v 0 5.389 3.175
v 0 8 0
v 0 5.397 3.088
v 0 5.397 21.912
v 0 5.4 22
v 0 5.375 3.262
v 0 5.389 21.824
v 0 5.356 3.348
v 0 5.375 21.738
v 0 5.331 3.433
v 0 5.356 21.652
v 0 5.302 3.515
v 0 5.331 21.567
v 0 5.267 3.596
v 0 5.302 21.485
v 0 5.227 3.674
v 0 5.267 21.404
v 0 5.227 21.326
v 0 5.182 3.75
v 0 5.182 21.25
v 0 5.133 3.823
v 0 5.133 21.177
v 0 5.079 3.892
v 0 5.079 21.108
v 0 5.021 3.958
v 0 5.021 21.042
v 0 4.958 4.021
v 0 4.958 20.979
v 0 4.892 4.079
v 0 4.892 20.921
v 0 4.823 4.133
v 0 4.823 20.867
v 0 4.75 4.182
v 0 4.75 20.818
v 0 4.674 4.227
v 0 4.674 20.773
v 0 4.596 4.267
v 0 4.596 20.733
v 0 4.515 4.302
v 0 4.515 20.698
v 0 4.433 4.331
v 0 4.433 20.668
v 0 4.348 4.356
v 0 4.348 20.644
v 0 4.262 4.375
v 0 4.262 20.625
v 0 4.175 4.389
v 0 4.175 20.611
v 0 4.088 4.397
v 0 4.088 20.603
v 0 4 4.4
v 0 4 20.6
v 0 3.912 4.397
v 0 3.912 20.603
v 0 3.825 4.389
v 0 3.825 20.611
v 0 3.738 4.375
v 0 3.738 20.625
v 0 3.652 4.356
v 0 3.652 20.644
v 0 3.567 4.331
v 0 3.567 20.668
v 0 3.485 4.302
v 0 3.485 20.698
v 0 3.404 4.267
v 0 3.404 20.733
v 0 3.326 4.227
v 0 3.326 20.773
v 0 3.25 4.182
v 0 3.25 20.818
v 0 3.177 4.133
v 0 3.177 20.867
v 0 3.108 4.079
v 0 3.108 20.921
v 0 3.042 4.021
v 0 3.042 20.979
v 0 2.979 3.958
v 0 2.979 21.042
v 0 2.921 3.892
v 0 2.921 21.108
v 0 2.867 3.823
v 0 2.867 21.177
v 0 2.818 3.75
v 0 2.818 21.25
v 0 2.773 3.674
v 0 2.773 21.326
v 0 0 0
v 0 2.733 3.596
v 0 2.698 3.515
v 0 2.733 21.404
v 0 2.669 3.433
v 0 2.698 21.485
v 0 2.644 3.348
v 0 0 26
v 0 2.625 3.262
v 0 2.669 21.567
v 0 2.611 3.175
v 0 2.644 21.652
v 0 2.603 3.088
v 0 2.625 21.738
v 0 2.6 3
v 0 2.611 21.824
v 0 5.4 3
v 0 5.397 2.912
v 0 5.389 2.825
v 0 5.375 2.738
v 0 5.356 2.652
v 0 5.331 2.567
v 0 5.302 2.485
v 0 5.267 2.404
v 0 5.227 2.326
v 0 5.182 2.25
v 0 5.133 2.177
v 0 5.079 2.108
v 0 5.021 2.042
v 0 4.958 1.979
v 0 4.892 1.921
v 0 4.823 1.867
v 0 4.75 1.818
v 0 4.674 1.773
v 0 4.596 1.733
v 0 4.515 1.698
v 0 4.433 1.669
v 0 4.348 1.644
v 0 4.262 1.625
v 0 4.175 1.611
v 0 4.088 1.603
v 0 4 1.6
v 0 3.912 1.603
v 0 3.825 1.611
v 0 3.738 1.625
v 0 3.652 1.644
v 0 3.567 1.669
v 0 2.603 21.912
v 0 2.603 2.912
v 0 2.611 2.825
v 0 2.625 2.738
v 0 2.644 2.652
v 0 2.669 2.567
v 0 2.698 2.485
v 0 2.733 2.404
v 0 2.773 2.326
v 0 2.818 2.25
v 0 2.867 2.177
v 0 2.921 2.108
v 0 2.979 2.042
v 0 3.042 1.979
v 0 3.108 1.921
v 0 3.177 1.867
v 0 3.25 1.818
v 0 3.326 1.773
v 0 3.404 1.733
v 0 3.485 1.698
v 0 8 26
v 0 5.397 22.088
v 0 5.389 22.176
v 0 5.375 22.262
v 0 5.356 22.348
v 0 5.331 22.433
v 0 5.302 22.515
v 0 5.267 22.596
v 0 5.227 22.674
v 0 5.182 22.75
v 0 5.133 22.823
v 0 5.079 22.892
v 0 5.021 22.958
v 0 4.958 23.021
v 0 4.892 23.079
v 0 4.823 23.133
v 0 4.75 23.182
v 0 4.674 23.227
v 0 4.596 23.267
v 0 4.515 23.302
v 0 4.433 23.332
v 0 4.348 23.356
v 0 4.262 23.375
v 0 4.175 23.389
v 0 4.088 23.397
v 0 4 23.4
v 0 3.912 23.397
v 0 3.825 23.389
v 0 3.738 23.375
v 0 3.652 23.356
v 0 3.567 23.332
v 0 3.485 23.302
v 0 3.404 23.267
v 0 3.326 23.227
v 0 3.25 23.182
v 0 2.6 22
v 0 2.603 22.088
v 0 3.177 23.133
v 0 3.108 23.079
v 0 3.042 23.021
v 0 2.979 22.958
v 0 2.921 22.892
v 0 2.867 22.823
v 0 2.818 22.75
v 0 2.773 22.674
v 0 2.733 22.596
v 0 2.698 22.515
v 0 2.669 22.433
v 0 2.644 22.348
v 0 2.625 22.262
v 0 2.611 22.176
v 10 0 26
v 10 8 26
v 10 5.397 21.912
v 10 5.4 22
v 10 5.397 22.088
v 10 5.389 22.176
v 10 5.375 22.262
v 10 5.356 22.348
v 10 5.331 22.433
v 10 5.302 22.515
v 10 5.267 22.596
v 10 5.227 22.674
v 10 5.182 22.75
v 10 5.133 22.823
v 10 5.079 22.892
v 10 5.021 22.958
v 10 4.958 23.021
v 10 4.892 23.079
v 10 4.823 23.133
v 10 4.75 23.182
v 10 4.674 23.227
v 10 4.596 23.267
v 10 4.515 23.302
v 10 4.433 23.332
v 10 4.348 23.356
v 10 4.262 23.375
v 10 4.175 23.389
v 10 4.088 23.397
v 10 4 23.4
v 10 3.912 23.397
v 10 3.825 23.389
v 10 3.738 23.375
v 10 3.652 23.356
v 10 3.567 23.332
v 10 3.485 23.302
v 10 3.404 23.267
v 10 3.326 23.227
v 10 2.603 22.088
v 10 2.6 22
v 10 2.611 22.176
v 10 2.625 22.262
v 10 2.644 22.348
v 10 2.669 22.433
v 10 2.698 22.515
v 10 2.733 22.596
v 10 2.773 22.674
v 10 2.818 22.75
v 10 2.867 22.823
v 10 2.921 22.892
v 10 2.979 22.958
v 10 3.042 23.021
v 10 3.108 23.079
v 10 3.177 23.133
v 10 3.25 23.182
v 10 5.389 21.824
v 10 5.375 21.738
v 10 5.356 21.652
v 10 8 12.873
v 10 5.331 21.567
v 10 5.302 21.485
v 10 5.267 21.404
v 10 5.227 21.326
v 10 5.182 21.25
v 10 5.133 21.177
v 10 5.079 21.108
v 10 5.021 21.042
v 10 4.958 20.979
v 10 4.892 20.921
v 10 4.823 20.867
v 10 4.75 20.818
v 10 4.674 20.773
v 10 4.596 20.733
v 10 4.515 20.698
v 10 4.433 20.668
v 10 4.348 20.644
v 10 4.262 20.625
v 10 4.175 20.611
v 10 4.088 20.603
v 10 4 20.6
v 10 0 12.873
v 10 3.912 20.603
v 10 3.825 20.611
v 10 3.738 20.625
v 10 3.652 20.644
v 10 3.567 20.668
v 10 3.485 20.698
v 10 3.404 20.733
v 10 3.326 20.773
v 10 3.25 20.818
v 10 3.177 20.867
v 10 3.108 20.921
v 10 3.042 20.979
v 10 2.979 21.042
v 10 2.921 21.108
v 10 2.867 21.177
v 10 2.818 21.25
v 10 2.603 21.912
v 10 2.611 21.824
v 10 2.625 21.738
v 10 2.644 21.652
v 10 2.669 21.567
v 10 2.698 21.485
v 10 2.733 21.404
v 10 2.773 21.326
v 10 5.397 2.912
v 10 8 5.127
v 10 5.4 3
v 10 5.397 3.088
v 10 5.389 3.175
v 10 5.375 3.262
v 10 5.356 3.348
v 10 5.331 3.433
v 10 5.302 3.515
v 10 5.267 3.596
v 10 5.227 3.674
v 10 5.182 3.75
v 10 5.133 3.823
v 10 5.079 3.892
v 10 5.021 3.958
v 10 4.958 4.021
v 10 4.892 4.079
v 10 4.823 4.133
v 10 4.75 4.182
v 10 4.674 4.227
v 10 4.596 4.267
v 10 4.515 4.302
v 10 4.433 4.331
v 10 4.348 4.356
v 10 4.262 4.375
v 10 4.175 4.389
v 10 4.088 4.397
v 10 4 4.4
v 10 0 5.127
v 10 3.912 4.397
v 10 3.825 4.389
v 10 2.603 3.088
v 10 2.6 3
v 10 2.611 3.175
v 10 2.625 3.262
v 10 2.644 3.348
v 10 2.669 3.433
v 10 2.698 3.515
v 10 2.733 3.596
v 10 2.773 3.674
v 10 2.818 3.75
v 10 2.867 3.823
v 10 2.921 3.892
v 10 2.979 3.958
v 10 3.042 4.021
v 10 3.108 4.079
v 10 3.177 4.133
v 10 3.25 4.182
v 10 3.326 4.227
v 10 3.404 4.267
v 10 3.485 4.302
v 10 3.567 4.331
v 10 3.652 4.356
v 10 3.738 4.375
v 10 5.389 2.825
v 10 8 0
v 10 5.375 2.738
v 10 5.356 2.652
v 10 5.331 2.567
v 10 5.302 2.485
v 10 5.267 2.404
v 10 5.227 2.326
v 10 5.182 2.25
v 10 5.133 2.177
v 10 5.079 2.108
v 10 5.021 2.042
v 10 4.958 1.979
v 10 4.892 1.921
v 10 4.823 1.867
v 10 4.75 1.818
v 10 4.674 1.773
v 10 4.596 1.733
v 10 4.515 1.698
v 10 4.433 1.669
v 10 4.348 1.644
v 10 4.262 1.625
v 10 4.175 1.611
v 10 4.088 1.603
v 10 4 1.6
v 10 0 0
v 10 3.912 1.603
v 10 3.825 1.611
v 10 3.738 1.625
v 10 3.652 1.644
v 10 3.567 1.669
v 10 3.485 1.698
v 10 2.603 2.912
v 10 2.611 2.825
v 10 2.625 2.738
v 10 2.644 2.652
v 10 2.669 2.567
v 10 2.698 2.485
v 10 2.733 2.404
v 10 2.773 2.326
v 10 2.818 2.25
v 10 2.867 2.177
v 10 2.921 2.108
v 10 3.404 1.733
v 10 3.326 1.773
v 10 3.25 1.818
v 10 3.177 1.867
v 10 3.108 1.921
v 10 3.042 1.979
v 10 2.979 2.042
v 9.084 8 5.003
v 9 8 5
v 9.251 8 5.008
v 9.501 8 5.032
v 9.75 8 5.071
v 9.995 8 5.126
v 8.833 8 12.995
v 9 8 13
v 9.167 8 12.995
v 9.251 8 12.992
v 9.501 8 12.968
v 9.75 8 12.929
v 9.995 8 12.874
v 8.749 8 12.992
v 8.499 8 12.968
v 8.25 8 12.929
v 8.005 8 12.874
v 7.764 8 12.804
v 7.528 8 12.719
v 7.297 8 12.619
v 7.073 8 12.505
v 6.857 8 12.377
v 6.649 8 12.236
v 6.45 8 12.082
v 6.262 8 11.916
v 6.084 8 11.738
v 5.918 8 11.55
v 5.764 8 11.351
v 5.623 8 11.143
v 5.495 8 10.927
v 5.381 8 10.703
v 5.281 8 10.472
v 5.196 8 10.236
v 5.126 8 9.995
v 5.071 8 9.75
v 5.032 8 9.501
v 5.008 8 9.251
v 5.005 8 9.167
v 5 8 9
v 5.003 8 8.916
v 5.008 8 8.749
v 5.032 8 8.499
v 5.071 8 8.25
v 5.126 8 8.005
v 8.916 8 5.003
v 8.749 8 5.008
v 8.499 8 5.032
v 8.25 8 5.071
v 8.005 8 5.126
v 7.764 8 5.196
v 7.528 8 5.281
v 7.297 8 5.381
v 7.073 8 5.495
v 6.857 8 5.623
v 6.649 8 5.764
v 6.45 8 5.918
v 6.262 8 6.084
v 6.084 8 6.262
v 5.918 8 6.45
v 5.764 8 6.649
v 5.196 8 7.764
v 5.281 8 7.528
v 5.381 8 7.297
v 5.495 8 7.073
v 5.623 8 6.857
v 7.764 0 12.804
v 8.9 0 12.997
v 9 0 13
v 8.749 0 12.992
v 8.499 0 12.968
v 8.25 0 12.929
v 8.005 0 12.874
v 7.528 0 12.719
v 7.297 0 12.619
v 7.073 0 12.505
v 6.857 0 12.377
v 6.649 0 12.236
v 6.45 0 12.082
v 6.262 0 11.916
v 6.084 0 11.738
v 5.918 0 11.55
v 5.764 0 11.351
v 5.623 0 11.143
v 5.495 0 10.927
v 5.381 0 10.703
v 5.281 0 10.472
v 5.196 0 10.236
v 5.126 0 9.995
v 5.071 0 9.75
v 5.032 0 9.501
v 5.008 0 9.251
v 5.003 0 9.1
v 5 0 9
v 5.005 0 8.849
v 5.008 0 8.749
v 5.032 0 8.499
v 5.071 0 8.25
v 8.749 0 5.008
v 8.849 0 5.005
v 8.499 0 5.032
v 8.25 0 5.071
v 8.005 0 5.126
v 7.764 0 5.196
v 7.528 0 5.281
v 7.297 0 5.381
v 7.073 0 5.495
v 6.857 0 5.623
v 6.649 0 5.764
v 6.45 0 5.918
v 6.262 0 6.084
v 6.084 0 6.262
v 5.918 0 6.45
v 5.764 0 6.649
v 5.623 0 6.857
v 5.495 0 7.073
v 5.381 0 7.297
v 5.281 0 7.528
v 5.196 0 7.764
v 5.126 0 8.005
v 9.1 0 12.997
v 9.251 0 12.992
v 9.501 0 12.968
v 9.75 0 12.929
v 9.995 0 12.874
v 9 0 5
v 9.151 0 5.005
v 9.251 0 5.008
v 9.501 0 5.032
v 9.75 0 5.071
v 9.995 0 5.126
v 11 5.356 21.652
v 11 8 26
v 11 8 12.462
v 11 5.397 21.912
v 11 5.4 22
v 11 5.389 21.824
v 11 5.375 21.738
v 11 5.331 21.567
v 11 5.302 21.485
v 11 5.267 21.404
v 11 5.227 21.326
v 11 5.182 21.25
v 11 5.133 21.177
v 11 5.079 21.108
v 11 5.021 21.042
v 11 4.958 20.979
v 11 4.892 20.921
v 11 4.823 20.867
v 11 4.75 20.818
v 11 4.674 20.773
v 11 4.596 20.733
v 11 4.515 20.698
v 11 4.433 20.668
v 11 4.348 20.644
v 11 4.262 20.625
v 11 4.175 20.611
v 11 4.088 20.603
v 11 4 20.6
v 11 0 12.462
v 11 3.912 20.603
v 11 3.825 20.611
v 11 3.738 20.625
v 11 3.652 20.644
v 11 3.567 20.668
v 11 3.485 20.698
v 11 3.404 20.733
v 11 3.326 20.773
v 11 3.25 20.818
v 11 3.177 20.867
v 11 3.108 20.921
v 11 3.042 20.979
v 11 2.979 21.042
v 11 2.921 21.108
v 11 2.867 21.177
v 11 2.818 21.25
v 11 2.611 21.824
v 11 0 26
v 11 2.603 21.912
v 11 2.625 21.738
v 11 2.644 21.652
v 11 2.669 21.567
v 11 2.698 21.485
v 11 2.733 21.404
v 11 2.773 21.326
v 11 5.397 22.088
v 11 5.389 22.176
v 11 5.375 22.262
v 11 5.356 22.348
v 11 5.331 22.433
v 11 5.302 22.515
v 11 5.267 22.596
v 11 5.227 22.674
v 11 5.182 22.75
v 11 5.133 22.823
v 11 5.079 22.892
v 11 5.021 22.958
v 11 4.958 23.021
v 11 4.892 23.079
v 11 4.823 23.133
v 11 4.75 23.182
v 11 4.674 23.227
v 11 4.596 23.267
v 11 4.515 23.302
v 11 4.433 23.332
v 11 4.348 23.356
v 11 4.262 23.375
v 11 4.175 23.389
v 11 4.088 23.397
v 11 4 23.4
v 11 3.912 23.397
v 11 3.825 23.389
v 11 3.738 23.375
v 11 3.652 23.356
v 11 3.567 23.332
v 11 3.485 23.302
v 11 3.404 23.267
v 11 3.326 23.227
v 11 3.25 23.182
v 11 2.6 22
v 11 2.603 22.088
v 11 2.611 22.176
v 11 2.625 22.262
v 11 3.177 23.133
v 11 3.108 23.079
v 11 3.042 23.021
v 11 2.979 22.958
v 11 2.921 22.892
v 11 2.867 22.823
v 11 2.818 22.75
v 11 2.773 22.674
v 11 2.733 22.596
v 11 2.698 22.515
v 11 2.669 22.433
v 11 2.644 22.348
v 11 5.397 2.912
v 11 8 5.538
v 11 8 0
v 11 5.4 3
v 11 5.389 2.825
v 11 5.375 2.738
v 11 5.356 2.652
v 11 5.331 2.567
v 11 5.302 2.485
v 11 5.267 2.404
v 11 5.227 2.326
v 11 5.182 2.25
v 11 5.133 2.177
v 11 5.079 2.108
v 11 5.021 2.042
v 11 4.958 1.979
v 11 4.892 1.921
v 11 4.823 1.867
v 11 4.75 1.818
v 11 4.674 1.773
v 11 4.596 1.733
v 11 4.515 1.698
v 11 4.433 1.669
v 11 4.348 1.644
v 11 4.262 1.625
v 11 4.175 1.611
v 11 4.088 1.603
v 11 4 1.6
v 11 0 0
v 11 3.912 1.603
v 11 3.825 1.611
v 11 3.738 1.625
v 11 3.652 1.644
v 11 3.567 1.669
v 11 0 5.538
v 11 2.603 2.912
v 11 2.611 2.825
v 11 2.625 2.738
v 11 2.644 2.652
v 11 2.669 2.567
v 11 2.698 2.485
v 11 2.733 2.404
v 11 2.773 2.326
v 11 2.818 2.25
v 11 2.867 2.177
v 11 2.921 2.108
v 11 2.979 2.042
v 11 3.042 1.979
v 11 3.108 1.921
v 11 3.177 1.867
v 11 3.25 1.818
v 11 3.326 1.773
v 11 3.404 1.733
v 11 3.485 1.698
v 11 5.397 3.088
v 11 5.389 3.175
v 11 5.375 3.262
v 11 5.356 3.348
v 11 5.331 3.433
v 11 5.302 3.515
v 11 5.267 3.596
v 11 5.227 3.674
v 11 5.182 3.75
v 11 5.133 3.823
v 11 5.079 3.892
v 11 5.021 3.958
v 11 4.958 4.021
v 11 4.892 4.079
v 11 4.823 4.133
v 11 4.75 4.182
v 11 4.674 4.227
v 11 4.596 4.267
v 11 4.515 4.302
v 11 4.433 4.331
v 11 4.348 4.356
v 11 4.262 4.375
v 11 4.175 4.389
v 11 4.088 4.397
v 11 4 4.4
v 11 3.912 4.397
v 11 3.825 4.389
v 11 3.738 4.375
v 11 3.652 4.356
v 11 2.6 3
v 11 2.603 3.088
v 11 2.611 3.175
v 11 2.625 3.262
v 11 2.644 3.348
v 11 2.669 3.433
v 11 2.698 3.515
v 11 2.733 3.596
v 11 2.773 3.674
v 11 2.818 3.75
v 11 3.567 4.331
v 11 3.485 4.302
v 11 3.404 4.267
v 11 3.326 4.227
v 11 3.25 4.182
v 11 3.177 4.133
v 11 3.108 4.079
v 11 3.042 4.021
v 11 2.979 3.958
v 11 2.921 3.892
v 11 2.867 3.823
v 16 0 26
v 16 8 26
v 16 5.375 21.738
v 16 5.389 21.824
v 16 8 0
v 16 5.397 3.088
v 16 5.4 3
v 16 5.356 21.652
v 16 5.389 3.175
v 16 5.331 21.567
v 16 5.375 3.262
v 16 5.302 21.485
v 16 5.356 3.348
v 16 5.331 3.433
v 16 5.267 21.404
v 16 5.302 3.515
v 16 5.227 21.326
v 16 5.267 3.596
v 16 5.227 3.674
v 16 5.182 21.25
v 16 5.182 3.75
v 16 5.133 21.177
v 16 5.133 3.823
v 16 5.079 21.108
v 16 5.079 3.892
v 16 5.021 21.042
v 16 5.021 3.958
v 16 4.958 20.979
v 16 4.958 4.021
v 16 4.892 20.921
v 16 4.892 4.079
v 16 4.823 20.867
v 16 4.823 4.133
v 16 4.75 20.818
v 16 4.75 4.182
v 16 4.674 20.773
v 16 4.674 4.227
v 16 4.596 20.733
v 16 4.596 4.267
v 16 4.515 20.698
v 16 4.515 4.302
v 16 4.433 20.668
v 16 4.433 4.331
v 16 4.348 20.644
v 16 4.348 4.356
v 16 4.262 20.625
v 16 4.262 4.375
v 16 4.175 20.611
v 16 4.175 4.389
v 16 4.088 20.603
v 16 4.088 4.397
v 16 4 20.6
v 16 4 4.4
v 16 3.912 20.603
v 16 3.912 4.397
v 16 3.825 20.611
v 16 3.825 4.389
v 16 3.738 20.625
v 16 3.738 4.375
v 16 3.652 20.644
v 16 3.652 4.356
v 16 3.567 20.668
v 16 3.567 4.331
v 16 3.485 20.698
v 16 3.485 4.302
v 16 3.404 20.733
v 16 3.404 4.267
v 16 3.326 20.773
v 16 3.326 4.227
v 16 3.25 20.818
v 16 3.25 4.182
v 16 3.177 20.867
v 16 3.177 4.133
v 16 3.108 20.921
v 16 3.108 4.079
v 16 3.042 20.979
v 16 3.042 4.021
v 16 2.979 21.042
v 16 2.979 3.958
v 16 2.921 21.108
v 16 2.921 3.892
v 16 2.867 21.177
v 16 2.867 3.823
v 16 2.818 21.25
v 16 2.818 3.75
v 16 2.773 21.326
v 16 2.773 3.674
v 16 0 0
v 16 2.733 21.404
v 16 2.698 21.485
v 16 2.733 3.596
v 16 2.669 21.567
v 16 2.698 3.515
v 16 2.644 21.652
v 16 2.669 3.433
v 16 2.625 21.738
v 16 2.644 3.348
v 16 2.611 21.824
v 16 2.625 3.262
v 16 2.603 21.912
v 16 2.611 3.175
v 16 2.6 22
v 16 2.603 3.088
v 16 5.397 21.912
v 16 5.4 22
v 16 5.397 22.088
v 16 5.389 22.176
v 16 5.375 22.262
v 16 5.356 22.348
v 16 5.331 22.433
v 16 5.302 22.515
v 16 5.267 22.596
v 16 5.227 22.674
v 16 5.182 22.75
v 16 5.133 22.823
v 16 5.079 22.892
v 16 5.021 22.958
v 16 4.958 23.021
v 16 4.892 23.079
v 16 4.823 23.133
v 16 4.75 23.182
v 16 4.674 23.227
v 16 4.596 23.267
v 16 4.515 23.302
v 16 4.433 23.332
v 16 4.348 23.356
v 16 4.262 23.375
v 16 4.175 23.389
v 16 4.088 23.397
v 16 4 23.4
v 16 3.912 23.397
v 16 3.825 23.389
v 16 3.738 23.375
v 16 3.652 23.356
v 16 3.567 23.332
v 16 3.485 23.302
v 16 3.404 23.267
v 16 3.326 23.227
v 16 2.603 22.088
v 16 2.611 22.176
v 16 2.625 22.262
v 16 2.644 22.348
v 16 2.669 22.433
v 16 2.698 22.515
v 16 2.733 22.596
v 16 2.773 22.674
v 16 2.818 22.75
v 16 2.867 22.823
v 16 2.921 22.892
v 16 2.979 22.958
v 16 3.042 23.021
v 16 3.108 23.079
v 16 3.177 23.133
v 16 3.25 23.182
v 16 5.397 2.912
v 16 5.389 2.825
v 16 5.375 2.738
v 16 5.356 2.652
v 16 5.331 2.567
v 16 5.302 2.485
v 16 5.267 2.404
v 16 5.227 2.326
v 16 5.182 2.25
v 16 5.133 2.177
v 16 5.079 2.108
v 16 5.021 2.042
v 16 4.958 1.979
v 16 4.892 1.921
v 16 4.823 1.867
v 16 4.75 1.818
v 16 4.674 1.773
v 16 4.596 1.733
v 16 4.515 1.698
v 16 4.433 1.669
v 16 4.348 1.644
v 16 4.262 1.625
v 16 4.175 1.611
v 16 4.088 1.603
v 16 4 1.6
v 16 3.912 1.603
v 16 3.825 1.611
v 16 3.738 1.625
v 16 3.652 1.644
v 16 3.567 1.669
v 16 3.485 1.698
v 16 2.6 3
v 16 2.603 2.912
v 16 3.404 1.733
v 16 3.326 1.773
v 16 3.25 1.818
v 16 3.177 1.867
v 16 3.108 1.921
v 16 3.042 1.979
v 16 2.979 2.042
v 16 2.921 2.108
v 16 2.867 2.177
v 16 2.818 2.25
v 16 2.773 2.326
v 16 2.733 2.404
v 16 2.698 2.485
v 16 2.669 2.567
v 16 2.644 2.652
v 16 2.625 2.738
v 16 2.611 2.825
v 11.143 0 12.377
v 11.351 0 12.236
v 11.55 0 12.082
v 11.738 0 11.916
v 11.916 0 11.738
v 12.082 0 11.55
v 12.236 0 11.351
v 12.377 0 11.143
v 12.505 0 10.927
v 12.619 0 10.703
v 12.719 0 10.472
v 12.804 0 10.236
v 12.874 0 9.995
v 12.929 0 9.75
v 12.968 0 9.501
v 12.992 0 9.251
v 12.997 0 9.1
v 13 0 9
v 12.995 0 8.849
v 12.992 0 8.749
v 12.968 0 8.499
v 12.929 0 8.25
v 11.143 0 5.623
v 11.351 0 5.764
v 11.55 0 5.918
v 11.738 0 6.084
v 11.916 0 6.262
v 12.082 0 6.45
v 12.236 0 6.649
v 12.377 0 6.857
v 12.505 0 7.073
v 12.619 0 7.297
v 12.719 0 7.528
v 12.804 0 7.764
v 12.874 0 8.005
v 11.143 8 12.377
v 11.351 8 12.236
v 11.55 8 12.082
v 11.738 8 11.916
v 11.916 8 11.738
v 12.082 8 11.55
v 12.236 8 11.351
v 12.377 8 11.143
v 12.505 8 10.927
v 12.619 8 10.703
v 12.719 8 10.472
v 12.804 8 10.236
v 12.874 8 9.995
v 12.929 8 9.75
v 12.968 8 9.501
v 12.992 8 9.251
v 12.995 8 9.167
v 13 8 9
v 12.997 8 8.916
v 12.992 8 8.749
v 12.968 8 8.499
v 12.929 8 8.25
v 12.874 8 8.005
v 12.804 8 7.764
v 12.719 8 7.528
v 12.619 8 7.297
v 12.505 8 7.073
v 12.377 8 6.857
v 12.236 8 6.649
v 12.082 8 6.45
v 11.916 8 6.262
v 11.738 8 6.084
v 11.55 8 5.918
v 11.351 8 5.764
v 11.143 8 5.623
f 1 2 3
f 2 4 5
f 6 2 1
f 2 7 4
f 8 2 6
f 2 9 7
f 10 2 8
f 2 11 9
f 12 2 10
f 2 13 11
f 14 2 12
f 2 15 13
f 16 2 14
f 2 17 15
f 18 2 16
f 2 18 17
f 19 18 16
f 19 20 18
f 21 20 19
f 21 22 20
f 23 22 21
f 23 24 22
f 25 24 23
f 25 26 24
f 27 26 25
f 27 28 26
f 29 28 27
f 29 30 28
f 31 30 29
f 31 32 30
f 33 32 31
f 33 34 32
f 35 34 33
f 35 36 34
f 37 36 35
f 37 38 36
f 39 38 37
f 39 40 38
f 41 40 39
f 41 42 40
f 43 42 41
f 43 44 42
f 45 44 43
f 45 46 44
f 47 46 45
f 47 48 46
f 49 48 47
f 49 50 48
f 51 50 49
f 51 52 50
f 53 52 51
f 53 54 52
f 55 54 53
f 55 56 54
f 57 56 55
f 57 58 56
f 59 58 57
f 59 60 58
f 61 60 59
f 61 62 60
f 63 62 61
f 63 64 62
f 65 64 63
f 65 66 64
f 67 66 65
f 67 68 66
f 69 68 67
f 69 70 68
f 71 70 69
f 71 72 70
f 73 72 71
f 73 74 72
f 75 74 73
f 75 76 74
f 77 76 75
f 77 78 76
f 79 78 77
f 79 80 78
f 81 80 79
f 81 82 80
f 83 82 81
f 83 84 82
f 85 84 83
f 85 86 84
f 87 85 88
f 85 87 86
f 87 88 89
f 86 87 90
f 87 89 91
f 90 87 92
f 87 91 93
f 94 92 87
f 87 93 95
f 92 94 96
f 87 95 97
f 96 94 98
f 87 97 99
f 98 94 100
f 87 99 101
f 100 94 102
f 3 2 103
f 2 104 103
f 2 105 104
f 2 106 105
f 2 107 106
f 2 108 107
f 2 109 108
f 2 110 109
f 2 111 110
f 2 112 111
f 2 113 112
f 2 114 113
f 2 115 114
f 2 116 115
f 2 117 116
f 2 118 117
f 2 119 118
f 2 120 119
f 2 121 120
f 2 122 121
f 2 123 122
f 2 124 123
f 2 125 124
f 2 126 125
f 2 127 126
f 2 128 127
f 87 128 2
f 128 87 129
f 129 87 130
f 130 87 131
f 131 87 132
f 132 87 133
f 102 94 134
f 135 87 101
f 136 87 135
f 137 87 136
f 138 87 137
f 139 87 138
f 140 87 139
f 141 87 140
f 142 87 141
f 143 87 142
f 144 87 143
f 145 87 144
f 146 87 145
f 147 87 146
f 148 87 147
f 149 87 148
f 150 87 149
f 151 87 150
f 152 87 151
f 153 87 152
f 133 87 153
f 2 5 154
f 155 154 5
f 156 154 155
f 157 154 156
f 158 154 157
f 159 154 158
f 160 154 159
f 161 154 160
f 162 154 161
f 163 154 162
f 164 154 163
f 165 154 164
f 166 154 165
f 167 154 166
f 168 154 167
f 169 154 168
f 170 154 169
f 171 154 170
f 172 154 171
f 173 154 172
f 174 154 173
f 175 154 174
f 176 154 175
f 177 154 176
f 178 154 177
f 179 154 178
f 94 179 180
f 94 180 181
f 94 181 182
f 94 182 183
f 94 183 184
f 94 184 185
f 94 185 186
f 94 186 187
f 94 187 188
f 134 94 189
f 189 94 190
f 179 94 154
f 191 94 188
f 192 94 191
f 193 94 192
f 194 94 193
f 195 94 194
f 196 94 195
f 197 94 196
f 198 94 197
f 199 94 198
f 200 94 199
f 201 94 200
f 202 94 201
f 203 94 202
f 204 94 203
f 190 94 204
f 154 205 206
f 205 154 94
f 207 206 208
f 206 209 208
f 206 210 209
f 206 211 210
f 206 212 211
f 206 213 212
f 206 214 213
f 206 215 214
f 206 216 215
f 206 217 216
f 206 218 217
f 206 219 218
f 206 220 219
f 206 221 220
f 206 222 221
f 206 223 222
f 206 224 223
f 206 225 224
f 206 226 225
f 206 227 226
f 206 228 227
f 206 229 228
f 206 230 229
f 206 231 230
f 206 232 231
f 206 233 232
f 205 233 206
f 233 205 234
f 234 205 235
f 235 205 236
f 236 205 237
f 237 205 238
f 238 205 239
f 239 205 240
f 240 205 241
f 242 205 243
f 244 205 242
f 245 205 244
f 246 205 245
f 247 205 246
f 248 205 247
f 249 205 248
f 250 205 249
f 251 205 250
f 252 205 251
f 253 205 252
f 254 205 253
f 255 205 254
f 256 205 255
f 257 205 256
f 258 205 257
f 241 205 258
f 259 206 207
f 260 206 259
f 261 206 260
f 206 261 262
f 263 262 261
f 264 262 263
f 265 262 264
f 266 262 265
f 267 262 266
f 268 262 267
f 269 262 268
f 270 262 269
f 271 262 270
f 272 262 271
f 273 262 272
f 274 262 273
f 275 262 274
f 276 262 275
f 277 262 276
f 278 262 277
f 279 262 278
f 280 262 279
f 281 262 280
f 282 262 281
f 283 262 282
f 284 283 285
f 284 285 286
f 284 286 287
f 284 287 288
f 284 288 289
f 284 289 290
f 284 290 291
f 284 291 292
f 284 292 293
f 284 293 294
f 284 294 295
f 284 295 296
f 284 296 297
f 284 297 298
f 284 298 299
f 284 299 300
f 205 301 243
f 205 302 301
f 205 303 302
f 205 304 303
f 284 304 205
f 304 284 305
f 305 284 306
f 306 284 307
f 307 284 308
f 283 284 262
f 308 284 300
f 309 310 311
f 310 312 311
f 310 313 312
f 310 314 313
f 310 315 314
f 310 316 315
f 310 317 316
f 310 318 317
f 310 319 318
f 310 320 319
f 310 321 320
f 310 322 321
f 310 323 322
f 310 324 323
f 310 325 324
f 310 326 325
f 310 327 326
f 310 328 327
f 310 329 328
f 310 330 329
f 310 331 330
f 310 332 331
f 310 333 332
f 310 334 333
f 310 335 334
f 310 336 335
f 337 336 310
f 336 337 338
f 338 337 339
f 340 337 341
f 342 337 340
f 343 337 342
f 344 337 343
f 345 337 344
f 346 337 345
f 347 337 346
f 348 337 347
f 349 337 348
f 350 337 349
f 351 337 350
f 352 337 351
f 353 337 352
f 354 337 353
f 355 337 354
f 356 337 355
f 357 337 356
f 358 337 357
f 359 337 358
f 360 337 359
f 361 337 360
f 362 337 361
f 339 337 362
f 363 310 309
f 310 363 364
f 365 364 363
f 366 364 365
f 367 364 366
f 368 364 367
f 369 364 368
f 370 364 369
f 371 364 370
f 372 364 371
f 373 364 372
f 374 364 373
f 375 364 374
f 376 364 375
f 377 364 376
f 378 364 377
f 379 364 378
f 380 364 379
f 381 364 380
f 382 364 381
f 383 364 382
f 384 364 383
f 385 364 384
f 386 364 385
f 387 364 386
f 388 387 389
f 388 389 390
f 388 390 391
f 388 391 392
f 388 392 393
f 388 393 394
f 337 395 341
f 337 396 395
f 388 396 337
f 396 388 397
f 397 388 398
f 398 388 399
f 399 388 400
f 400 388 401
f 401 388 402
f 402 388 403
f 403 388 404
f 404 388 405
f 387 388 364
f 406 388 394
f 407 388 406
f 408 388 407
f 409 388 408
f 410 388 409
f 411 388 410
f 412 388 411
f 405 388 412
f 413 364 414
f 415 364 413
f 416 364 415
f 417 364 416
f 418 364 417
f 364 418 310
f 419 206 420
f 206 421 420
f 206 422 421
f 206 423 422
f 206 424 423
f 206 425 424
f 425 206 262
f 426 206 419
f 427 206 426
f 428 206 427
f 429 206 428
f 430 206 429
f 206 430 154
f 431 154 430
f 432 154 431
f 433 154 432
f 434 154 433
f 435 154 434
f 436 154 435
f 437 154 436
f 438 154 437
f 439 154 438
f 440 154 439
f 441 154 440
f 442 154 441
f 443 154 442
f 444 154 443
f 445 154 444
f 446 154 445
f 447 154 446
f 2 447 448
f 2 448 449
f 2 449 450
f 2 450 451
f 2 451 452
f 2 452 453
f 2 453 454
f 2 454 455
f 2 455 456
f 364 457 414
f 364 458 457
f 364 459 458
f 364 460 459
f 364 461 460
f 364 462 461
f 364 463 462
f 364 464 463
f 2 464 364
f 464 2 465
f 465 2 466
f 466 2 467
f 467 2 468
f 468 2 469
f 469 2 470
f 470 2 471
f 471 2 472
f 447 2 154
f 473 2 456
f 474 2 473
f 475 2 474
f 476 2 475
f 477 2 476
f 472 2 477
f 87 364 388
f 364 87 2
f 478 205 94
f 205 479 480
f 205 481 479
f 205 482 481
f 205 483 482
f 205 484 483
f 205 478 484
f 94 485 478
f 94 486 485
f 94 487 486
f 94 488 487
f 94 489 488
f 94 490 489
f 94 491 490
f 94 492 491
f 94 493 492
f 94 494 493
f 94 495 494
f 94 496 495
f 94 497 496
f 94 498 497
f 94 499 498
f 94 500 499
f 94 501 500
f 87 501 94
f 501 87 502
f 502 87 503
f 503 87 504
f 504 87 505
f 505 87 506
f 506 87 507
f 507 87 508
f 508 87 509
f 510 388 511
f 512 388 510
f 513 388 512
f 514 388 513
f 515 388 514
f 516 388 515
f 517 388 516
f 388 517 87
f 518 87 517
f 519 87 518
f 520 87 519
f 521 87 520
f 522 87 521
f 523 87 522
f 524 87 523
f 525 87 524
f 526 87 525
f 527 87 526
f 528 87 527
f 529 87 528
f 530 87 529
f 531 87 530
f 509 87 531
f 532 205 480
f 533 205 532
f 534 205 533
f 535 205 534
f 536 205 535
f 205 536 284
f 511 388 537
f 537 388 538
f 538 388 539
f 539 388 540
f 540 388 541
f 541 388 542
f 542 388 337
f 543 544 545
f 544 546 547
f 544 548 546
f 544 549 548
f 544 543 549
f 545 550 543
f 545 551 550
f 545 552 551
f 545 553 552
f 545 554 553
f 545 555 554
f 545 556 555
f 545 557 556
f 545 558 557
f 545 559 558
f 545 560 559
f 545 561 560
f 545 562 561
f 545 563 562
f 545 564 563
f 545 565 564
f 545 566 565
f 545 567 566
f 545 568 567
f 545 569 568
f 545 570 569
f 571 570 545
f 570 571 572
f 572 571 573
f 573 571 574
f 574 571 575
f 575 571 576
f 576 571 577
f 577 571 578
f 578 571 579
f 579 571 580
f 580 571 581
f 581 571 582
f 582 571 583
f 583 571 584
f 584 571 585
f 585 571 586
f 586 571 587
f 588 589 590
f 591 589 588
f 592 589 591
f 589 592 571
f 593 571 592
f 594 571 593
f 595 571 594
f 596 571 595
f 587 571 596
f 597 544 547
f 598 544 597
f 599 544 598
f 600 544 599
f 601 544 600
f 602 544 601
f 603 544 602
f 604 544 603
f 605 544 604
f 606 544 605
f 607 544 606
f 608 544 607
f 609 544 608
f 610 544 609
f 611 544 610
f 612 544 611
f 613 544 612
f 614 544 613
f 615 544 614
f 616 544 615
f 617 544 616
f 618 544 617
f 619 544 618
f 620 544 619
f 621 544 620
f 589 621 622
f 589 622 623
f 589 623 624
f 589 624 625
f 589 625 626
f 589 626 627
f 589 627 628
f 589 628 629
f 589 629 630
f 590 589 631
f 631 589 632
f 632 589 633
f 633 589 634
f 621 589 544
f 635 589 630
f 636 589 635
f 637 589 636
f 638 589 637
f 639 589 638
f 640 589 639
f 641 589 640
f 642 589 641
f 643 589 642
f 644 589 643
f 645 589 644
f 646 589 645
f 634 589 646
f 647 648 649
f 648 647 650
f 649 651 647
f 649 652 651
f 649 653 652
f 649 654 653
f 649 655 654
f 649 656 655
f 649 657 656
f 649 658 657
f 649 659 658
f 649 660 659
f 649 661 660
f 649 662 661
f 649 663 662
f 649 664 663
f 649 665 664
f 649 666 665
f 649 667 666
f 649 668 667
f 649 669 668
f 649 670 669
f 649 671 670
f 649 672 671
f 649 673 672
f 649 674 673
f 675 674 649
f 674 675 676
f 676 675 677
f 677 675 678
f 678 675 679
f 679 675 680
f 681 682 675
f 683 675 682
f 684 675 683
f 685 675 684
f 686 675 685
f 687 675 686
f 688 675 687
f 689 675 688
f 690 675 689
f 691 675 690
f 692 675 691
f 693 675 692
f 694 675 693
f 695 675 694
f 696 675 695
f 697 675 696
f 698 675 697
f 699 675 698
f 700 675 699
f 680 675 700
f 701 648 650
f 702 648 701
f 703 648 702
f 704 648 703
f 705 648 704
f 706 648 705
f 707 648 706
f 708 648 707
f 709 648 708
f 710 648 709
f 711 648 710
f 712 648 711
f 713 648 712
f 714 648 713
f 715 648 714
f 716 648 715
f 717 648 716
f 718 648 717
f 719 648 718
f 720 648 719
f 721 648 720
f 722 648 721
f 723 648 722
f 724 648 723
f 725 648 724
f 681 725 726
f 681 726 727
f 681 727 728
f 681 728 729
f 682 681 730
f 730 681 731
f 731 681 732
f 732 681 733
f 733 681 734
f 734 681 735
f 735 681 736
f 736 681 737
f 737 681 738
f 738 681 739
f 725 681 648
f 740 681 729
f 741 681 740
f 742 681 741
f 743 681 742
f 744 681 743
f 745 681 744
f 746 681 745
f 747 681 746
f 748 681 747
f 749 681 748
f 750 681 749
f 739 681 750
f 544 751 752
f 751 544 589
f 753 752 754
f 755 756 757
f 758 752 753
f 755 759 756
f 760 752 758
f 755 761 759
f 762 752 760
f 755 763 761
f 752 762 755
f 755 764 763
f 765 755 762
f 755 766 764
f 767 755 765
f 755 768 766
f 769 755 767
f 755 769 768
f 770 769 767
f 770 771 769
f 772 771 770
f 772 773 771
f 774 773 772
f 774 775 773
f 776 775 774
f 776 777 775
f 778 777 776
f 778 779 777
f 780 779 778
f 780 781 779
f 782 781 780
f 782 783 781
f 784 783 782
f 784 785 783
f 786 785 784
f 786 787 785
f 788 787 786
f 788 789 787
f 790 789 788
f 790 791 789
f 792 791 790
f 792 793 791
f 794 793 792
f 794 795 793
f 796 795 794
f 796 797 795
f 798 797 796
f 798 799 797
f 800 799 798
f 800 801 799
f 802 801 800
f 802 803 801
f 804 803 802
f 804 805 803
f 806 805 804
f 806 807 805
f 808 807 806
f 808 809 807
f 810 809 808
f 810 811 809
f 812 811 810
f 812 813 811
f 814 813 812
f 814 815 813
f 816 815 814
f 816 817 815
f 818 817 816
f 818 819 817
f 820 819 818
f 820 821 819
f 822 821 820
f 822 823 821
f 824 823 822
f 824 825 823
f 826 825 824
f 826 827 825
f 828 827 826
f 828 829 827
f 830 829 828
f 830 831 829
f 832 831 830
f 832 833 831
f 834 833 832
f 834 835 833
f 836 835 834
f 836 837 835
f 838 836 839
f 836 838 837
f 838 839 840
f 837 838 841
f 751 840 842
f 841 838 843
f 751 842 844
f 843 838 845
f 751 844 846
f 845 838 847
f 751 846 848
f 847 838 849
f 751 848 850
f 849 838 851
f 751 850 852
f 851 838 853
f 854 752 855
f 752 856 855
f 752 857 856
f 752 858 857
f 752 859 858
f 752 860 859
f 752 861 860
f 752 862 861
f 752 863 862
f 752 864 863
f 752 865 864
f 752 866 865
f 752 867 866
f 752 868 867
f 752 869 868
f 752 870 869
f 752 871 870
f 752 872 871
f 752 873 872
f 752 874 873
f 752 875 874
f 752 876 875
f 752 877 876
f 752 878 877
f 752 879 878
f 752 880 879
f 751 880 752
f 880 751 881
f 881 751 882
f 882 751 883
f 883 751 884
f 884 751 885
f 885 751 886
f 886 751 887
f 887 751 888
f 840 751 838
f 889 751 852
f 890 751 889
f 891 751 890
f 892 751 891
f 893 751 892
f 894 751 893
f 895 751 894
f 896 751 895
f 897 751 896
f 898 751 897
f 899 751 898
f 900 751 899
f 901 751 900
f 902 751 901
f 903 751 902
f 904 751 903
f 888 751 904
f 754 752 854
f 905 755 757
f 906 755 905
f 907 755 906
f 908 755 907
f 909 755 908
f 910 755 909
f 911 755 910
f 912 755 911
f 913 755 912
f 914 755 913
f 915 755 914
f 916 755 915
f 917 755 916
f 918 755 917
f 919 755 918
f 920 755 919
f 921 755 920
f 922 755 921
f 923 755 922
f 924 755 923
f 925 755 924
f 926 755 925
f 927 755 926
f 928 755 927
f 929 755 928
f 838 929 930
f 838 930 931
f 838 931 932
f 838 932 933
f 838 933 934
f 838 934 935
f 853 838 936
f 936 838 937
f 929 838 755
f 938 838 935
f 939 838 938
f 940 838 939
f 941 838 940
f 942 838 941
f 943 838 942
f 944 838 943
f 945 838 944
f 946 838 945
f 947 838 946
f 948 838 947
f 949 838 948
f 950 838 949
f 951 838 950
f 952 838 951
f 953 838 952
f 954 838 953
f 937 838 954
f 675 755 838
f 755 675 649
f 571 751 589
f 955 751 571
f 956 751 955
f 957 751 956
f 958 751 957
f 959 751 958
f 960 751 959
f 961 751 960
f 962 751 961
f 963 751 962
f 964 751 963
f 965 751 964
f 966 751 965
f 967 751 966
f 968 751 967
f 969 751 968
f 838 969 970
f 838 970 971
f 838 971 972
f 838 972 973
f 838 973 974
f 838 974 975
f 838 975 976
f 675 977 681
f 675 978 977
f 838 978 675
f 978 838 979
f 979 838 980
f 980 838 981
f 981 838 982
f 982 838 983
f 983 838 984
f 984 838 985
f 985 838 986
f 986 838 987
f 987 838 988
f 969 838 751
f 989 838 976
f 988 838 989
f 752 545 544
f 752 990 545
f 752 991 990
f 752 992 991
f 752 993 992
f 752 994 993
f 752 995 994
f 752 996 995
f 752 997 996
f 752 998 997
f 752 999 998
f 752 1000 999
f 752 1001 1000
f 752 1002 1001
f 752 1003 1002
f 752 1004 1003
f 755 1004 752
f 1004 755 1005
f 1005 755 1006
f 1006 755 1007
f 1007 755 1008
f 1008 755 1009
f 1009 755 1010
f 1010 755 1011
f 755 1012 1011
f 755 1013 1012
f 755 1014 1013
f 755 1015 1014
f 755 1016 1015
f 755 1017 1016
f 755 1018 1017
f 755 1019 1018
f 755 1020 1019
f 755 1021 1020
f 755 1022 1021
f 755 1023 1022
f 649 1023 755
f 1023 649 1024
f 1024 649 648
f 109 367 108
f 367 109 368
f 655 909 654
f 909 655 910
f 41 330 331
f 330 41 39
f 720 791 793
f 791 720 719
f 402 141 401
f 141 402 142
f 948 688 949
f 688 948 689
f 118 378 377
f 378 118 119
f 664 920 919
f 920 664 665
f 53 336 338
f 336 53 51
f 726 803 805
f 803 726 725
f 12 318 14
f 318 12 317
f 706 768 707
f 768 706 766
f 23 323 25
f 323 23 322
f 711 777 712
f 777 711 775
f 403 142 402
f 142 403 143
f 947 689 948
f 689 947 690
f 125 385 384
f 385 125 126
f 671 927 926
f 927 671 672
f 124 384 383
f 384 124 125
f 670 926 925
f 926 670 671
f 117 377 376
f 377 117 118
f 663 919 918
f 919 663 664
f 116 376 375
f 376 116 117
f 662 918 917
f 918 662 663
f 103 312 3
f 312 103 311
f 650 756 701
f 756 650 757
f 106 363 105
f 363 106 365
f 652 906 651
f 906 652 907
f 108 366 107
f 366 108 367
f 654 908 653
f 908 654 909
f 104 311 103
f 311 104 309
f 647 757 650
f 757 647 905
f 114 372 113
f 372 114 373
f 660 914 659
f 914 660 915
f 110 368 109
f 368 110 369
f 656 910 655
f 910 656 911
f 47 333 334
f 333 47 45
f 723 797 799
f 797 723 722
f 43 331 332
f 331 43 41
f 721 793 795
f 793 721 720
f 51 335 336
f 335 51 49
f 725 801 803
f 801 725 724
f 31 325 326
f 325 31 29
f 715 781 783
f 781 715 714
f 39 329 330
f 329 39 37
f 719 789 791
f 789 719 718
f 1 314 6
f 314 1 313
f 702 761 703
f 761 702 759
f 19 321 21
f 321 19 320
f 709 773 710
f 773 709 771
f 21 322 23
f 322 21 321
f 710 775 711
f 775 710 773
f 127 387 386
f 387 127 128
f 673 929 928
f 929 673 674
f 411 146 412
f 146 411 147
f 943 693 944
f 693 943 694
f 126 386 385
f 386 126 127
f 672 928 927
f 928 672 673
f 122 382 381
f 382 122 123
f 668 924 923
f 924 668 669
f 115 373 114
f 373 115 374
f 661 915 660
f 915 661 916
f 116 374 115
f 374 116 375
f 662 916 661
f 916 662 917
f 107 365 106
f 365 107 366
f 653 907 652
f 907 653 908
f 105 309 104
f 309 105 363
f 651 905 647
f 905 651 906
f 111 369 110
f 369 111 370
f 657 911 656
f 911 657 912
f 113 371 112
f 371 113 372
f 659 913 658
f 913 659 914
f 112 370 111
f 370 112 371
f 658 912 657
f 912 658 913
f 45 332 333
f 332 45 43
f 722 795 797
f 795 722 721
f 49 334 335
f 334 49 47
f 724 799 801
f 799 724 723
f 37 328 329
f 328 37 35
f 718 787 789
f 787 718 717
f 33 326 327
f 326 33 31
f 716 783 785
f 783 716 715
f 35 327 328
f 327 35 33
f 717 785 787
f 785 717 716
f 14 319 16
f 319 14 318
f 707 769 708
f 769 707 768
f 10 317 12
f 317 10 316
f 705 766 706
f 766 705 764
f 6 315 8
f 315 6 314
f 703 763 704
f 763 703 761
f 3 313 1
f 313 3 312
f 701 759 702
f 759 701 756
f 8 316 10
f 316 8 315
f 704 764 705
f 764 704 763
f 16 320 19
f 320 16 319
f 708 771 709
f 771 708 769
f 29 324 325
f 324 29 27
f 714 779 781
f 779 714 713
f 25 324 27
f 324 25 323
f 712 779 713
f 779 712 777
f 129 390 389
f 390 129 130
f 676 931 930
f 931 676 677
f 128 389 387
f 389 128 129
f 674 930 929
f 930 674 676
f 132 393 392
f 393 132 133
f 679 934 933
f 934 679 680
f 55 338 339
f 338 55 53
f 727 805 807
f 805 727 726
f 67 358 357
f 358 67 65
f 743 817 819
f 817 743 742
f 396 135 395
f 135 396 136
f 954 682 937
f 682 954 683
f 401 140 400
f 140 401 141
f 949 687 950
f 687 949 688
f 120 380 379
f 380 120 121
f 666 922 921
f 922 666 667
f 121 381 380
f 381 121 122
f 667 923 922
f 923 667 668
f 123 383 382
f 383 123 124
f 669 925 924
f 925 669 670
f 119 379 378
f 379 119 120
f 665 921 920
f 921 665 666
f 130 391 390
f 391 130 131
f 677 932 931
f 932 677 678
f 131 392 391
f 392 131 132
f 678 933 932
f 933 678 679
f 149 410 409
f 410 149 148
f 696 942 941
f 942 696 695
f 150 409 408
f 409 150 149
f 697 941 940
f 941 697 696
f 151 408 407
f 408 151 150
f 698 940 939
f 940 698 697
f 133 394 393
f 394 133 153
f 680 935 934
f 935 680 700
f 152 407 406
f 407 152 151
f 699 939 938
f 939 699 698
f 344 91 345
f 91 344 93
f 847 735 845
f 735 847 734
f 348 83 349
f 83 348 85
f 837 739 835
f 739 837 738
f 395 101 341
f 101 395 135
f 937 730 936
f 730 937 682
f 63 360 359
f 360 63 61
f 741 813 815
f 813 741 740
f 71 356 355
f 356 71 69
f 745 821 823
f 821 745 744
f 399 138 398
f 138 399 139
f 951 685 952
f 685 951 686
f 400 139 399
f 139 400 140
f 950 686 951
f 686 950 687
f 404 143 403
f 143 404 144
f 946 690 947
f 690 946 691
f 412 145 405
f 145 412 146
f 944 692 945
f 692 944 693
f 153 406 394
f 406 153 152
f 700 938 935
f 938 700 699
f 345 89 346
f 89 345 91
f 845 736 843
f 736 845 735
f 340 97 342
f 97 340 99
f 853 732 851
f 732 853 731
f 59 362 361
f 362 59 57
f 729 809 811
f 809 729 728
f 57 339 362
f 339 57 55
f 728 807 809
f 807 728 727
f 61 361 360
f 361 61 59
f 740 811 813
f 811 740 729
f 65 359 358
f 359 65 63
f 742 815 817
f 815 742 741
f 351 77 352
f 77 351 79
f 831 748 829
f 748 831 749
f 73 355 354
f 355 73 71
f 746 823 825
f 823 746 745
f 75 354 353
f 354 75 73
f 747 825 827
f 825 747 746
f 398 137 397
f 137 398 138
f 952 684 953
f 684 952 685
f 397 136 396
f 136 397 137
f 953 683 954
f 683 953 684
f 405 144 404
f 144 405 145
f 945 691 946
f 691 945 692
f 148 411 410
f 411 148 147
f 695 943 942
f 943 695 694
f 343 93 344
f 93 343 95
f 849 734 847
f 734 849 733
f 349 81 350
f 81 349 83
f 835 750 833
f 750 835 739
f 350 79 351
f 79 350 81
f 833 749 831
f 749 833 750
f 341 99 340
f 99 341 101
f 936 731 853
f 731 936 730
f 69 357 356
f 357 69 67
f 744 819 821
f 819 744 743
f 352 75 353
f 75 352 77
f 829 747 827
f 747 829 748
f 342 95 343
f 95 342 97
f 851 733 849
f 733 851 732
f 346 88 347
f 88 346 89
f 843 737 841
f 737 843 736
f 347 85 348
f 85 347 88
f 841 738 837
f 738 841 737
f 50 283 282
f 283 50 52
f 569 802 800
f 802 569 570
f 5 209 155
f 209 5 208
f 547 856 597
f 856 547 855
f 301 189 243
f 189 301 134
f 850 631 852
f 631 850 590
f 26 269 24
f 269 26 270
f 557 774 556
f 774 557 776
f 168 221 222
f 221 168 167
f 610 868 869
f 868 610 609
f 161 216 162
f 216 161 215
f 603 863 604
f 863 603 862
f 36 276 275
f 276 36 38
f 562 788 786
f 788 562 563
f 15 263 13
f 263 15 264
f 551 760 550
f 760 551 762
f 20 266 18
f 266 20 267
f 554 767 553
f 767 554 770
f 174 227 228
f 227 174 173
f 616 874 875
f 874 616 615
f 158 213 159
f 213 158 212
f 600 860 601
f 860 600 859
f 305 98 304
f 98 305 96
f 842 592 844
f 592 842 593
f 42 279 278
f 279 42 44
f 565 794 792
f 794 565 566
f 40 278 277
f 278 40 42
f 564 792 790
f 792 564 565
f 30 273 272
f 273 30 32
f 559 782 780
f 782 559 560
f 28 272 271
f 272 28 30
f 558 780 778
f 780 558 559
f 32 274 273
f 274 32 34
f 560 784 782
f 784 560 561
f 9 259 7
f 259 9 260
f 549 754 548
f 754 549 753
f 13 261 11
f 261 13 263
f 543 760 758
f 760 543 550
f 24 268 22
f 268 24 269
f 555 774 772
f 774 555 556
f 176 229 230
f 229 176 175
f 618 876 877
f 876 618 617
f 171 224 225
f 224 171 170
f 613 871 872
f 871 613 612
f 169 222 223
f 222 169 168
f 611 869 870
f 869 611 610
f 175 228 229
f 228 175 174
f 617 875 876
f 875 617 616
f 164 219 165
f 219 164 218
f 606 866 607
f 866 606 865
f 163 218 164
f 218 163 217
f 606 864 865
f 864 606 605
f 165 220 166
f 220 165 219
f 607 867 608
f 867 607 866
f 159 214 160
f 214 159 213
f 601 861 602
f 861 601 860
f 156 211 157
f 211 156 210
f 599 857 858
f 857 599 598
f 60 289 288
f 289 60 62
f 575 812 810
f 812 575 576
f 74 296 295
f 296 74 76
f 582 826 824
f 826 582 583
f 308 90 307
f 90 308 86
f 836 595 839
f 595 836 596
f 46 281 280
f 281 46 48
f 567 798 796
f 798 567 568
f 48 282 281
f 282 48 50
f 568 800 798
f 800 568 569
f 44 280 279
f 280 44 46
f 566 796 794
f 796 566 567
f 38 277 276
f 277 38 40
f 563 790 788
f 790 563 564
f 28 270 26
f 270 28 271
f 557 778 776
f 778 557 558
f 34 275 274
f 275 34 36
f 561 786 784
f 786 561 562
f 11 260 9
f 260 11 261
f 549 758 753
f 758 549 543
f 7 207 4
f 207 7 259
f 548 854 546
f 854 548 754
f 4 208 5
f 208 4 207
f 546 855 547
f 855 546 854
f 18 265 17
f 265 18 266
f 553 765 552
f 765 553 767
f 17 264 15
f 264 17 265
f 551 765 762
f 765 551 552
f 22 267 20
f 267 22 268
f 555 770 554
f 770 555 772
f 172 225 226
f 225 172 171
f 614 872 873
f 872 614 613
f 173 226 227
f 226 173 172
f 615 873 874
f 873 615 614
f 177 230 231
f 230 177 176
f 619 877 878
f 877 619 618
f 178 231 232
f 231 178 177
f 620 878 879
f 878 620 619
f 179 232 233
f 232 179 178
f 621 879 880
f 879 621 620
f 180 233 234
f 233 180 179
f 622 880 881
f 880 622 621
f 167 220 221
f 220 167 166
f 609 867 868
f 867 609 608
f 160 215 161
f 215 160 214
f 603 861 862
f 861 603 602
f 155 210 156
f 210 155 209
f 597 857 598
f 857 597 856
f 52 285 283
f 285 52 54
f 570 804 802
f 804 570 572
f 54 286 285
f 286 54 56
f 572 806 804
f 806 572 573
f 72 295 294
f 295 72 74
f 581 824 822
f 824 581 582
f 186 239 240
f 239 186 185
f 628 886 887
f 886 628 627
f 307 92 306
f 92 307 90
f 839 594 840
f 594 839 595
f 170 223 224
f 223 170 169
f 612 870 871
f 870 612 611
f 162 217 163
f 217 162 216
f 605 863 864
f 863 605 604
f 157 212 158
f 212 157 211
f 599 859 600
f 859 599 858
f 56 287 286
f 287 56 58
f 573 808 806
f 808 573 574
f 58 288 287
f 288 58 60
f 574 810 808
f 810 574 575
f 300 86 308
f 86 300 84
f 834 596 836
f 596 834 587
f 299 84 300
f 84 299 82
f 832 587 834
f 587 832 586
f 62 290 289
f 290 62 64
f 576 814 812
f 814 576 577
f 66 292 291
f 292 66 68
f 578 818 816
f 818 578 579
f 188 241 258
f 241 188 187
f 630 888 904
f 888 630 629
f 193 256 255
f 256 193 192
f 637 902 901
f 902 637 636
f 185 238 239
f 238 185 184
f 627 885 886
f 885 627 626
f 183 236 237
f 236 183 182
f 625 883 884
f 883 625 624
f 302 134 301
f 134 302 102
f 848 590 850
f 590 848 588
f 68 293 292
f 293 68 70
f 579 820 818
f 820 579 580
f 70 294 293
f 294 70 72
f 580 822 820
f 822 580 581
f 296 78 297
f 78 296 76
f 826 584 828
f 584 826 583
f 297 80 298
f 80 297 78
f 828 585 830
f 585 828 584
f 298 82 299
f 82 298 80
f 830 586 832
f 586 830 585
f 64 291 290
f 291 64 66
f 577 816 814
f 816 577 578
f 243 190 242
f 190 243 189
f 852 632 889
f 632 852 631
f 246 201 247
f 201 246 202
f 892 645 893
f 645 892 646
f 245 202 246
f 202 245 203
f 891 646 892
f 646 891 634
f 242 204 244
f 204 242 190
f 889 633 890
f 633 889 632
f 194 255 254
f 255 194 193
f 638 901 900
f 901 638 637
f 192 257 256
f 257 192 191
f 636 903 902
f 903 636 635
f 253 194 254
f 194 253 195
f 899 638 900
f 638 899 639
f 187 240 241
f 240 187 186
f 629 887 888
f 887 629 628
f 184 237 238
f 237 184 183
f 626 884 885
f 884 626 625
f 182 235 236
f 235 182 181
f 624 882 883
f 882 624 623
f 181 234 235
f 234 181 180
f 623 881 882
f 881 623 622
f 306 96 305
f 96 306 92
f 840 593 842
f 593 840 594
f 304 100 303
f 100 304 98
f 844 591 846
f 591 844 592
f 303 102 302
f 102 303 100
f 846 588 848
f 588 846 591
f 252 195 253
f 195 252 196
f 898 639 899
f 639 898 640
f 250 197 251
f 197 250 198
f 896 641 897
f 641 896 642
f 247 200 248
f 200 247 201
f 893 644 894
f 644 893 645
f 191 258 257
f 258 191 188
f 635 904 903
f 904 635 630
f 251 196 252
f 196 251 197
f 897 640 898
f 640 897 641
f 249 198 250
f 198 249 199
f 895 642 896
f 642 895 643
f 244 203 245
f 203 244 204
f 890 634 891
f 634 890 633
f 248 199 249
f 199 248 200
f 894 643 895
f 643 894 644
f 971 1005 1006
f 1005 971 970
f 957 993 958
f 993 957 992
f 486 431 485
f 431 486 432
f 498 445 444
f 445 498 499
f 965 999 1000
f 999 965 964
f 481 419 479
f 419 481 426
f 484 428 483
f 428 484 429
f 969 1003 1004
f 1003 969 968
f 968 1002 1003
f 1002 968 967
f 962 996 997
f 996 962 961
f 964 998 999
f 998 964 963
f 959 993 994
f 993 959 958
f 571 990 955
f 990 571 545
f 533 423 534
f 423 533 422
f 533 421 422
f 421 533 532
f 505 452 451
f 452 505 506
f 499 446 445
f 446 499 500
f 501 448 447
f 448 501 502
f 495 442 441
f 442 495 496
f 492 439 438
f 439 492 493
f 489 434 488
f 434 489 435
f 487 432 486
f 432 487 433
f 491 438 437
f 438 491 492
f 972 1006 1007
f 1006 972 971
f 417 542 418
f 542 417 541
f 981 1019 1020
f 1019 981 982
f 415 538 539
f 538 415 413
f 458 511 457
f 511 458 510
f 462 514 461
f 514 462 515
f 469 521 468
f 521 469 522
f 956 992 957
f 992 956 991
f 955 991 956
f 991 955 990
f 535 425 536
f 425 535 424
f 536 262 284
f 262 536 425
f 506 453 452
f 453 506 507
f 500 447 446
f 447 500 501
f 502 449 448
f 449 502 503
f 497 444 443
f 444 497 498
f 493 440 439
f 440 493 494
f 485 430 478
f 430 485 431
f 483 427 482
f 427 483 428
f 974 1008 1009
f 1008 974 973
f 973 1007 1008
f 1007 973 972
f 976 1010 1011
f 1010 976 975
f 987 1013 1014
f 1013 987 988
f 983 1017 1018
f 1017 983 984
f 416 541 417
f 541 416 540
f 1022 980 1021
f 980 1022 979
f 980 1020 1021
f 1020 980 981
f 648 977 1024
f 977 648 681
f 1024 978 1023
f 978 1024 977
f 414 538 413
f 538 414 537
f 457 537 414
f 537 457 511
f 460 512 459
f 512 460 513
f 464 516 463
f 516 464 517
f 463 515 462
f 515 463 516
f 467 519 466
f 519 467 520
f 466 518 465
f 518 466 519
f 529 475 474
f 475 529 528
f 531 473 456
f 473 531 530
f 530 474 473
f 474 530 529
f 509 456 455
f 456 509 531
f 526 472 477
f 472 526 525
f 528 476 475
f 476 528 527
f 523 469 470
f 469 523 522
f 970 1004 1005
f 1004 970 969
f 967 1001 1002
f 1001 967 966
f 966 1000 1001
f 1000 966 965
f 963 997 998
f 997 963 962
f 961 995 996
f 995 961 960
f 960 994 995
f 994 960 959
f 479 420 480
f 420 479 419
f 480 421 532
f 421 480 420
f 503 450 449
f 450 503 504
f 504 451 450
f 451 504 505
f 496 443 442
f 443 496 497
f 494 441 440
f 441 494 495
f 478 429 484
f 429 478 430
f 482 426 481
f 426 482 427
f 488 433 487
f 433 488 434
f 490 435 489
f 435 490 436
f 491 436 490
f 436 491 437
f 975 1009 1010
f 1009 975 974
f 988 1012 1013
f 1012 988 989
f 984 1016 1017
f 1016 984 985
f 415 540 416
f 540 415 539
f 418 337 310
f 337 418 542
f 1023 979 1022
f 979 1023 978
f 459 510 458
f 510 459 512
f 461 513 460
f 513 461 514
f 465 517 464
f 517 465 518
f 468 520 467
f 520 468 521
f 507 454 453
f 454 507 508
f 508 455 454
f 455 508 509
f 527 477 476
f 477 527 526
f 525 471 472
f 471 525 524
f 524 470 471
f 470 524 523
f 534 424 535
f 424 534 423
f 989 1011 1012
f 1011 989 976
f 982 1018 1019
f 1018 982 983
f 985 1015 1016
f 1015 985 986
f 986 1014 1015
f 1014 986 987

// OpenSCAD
$fn=100;
fudge = 0.0;
rod_radius=4;
mount();
module mount(){
    difference(){
        union(){
            cube([10,8,26]);
            translate([11,0,0]){
                cube([5,8,26]);
            }
        }
        switch_mount();
        mounting_hole();
    }
}
//mounting_hole();
module mounting_hole(){
    rotate([90,0,0]){
        translate([9,9,-18]){
            cylinder(h=30, r=rod_radius + fudge);
        }
    }
}
//switch_mount();
module switch_mount(){
    rotate([0,90,0]){
        translate([-3,0,0]){
            screw_hole();
        }
        translate([-22,0,0]){
            screw_hole();
        }
    }
}
module screw_hole(){
    translate([0,4,-2]){
        cylinder(h=22,r=1.4);
    }
}
